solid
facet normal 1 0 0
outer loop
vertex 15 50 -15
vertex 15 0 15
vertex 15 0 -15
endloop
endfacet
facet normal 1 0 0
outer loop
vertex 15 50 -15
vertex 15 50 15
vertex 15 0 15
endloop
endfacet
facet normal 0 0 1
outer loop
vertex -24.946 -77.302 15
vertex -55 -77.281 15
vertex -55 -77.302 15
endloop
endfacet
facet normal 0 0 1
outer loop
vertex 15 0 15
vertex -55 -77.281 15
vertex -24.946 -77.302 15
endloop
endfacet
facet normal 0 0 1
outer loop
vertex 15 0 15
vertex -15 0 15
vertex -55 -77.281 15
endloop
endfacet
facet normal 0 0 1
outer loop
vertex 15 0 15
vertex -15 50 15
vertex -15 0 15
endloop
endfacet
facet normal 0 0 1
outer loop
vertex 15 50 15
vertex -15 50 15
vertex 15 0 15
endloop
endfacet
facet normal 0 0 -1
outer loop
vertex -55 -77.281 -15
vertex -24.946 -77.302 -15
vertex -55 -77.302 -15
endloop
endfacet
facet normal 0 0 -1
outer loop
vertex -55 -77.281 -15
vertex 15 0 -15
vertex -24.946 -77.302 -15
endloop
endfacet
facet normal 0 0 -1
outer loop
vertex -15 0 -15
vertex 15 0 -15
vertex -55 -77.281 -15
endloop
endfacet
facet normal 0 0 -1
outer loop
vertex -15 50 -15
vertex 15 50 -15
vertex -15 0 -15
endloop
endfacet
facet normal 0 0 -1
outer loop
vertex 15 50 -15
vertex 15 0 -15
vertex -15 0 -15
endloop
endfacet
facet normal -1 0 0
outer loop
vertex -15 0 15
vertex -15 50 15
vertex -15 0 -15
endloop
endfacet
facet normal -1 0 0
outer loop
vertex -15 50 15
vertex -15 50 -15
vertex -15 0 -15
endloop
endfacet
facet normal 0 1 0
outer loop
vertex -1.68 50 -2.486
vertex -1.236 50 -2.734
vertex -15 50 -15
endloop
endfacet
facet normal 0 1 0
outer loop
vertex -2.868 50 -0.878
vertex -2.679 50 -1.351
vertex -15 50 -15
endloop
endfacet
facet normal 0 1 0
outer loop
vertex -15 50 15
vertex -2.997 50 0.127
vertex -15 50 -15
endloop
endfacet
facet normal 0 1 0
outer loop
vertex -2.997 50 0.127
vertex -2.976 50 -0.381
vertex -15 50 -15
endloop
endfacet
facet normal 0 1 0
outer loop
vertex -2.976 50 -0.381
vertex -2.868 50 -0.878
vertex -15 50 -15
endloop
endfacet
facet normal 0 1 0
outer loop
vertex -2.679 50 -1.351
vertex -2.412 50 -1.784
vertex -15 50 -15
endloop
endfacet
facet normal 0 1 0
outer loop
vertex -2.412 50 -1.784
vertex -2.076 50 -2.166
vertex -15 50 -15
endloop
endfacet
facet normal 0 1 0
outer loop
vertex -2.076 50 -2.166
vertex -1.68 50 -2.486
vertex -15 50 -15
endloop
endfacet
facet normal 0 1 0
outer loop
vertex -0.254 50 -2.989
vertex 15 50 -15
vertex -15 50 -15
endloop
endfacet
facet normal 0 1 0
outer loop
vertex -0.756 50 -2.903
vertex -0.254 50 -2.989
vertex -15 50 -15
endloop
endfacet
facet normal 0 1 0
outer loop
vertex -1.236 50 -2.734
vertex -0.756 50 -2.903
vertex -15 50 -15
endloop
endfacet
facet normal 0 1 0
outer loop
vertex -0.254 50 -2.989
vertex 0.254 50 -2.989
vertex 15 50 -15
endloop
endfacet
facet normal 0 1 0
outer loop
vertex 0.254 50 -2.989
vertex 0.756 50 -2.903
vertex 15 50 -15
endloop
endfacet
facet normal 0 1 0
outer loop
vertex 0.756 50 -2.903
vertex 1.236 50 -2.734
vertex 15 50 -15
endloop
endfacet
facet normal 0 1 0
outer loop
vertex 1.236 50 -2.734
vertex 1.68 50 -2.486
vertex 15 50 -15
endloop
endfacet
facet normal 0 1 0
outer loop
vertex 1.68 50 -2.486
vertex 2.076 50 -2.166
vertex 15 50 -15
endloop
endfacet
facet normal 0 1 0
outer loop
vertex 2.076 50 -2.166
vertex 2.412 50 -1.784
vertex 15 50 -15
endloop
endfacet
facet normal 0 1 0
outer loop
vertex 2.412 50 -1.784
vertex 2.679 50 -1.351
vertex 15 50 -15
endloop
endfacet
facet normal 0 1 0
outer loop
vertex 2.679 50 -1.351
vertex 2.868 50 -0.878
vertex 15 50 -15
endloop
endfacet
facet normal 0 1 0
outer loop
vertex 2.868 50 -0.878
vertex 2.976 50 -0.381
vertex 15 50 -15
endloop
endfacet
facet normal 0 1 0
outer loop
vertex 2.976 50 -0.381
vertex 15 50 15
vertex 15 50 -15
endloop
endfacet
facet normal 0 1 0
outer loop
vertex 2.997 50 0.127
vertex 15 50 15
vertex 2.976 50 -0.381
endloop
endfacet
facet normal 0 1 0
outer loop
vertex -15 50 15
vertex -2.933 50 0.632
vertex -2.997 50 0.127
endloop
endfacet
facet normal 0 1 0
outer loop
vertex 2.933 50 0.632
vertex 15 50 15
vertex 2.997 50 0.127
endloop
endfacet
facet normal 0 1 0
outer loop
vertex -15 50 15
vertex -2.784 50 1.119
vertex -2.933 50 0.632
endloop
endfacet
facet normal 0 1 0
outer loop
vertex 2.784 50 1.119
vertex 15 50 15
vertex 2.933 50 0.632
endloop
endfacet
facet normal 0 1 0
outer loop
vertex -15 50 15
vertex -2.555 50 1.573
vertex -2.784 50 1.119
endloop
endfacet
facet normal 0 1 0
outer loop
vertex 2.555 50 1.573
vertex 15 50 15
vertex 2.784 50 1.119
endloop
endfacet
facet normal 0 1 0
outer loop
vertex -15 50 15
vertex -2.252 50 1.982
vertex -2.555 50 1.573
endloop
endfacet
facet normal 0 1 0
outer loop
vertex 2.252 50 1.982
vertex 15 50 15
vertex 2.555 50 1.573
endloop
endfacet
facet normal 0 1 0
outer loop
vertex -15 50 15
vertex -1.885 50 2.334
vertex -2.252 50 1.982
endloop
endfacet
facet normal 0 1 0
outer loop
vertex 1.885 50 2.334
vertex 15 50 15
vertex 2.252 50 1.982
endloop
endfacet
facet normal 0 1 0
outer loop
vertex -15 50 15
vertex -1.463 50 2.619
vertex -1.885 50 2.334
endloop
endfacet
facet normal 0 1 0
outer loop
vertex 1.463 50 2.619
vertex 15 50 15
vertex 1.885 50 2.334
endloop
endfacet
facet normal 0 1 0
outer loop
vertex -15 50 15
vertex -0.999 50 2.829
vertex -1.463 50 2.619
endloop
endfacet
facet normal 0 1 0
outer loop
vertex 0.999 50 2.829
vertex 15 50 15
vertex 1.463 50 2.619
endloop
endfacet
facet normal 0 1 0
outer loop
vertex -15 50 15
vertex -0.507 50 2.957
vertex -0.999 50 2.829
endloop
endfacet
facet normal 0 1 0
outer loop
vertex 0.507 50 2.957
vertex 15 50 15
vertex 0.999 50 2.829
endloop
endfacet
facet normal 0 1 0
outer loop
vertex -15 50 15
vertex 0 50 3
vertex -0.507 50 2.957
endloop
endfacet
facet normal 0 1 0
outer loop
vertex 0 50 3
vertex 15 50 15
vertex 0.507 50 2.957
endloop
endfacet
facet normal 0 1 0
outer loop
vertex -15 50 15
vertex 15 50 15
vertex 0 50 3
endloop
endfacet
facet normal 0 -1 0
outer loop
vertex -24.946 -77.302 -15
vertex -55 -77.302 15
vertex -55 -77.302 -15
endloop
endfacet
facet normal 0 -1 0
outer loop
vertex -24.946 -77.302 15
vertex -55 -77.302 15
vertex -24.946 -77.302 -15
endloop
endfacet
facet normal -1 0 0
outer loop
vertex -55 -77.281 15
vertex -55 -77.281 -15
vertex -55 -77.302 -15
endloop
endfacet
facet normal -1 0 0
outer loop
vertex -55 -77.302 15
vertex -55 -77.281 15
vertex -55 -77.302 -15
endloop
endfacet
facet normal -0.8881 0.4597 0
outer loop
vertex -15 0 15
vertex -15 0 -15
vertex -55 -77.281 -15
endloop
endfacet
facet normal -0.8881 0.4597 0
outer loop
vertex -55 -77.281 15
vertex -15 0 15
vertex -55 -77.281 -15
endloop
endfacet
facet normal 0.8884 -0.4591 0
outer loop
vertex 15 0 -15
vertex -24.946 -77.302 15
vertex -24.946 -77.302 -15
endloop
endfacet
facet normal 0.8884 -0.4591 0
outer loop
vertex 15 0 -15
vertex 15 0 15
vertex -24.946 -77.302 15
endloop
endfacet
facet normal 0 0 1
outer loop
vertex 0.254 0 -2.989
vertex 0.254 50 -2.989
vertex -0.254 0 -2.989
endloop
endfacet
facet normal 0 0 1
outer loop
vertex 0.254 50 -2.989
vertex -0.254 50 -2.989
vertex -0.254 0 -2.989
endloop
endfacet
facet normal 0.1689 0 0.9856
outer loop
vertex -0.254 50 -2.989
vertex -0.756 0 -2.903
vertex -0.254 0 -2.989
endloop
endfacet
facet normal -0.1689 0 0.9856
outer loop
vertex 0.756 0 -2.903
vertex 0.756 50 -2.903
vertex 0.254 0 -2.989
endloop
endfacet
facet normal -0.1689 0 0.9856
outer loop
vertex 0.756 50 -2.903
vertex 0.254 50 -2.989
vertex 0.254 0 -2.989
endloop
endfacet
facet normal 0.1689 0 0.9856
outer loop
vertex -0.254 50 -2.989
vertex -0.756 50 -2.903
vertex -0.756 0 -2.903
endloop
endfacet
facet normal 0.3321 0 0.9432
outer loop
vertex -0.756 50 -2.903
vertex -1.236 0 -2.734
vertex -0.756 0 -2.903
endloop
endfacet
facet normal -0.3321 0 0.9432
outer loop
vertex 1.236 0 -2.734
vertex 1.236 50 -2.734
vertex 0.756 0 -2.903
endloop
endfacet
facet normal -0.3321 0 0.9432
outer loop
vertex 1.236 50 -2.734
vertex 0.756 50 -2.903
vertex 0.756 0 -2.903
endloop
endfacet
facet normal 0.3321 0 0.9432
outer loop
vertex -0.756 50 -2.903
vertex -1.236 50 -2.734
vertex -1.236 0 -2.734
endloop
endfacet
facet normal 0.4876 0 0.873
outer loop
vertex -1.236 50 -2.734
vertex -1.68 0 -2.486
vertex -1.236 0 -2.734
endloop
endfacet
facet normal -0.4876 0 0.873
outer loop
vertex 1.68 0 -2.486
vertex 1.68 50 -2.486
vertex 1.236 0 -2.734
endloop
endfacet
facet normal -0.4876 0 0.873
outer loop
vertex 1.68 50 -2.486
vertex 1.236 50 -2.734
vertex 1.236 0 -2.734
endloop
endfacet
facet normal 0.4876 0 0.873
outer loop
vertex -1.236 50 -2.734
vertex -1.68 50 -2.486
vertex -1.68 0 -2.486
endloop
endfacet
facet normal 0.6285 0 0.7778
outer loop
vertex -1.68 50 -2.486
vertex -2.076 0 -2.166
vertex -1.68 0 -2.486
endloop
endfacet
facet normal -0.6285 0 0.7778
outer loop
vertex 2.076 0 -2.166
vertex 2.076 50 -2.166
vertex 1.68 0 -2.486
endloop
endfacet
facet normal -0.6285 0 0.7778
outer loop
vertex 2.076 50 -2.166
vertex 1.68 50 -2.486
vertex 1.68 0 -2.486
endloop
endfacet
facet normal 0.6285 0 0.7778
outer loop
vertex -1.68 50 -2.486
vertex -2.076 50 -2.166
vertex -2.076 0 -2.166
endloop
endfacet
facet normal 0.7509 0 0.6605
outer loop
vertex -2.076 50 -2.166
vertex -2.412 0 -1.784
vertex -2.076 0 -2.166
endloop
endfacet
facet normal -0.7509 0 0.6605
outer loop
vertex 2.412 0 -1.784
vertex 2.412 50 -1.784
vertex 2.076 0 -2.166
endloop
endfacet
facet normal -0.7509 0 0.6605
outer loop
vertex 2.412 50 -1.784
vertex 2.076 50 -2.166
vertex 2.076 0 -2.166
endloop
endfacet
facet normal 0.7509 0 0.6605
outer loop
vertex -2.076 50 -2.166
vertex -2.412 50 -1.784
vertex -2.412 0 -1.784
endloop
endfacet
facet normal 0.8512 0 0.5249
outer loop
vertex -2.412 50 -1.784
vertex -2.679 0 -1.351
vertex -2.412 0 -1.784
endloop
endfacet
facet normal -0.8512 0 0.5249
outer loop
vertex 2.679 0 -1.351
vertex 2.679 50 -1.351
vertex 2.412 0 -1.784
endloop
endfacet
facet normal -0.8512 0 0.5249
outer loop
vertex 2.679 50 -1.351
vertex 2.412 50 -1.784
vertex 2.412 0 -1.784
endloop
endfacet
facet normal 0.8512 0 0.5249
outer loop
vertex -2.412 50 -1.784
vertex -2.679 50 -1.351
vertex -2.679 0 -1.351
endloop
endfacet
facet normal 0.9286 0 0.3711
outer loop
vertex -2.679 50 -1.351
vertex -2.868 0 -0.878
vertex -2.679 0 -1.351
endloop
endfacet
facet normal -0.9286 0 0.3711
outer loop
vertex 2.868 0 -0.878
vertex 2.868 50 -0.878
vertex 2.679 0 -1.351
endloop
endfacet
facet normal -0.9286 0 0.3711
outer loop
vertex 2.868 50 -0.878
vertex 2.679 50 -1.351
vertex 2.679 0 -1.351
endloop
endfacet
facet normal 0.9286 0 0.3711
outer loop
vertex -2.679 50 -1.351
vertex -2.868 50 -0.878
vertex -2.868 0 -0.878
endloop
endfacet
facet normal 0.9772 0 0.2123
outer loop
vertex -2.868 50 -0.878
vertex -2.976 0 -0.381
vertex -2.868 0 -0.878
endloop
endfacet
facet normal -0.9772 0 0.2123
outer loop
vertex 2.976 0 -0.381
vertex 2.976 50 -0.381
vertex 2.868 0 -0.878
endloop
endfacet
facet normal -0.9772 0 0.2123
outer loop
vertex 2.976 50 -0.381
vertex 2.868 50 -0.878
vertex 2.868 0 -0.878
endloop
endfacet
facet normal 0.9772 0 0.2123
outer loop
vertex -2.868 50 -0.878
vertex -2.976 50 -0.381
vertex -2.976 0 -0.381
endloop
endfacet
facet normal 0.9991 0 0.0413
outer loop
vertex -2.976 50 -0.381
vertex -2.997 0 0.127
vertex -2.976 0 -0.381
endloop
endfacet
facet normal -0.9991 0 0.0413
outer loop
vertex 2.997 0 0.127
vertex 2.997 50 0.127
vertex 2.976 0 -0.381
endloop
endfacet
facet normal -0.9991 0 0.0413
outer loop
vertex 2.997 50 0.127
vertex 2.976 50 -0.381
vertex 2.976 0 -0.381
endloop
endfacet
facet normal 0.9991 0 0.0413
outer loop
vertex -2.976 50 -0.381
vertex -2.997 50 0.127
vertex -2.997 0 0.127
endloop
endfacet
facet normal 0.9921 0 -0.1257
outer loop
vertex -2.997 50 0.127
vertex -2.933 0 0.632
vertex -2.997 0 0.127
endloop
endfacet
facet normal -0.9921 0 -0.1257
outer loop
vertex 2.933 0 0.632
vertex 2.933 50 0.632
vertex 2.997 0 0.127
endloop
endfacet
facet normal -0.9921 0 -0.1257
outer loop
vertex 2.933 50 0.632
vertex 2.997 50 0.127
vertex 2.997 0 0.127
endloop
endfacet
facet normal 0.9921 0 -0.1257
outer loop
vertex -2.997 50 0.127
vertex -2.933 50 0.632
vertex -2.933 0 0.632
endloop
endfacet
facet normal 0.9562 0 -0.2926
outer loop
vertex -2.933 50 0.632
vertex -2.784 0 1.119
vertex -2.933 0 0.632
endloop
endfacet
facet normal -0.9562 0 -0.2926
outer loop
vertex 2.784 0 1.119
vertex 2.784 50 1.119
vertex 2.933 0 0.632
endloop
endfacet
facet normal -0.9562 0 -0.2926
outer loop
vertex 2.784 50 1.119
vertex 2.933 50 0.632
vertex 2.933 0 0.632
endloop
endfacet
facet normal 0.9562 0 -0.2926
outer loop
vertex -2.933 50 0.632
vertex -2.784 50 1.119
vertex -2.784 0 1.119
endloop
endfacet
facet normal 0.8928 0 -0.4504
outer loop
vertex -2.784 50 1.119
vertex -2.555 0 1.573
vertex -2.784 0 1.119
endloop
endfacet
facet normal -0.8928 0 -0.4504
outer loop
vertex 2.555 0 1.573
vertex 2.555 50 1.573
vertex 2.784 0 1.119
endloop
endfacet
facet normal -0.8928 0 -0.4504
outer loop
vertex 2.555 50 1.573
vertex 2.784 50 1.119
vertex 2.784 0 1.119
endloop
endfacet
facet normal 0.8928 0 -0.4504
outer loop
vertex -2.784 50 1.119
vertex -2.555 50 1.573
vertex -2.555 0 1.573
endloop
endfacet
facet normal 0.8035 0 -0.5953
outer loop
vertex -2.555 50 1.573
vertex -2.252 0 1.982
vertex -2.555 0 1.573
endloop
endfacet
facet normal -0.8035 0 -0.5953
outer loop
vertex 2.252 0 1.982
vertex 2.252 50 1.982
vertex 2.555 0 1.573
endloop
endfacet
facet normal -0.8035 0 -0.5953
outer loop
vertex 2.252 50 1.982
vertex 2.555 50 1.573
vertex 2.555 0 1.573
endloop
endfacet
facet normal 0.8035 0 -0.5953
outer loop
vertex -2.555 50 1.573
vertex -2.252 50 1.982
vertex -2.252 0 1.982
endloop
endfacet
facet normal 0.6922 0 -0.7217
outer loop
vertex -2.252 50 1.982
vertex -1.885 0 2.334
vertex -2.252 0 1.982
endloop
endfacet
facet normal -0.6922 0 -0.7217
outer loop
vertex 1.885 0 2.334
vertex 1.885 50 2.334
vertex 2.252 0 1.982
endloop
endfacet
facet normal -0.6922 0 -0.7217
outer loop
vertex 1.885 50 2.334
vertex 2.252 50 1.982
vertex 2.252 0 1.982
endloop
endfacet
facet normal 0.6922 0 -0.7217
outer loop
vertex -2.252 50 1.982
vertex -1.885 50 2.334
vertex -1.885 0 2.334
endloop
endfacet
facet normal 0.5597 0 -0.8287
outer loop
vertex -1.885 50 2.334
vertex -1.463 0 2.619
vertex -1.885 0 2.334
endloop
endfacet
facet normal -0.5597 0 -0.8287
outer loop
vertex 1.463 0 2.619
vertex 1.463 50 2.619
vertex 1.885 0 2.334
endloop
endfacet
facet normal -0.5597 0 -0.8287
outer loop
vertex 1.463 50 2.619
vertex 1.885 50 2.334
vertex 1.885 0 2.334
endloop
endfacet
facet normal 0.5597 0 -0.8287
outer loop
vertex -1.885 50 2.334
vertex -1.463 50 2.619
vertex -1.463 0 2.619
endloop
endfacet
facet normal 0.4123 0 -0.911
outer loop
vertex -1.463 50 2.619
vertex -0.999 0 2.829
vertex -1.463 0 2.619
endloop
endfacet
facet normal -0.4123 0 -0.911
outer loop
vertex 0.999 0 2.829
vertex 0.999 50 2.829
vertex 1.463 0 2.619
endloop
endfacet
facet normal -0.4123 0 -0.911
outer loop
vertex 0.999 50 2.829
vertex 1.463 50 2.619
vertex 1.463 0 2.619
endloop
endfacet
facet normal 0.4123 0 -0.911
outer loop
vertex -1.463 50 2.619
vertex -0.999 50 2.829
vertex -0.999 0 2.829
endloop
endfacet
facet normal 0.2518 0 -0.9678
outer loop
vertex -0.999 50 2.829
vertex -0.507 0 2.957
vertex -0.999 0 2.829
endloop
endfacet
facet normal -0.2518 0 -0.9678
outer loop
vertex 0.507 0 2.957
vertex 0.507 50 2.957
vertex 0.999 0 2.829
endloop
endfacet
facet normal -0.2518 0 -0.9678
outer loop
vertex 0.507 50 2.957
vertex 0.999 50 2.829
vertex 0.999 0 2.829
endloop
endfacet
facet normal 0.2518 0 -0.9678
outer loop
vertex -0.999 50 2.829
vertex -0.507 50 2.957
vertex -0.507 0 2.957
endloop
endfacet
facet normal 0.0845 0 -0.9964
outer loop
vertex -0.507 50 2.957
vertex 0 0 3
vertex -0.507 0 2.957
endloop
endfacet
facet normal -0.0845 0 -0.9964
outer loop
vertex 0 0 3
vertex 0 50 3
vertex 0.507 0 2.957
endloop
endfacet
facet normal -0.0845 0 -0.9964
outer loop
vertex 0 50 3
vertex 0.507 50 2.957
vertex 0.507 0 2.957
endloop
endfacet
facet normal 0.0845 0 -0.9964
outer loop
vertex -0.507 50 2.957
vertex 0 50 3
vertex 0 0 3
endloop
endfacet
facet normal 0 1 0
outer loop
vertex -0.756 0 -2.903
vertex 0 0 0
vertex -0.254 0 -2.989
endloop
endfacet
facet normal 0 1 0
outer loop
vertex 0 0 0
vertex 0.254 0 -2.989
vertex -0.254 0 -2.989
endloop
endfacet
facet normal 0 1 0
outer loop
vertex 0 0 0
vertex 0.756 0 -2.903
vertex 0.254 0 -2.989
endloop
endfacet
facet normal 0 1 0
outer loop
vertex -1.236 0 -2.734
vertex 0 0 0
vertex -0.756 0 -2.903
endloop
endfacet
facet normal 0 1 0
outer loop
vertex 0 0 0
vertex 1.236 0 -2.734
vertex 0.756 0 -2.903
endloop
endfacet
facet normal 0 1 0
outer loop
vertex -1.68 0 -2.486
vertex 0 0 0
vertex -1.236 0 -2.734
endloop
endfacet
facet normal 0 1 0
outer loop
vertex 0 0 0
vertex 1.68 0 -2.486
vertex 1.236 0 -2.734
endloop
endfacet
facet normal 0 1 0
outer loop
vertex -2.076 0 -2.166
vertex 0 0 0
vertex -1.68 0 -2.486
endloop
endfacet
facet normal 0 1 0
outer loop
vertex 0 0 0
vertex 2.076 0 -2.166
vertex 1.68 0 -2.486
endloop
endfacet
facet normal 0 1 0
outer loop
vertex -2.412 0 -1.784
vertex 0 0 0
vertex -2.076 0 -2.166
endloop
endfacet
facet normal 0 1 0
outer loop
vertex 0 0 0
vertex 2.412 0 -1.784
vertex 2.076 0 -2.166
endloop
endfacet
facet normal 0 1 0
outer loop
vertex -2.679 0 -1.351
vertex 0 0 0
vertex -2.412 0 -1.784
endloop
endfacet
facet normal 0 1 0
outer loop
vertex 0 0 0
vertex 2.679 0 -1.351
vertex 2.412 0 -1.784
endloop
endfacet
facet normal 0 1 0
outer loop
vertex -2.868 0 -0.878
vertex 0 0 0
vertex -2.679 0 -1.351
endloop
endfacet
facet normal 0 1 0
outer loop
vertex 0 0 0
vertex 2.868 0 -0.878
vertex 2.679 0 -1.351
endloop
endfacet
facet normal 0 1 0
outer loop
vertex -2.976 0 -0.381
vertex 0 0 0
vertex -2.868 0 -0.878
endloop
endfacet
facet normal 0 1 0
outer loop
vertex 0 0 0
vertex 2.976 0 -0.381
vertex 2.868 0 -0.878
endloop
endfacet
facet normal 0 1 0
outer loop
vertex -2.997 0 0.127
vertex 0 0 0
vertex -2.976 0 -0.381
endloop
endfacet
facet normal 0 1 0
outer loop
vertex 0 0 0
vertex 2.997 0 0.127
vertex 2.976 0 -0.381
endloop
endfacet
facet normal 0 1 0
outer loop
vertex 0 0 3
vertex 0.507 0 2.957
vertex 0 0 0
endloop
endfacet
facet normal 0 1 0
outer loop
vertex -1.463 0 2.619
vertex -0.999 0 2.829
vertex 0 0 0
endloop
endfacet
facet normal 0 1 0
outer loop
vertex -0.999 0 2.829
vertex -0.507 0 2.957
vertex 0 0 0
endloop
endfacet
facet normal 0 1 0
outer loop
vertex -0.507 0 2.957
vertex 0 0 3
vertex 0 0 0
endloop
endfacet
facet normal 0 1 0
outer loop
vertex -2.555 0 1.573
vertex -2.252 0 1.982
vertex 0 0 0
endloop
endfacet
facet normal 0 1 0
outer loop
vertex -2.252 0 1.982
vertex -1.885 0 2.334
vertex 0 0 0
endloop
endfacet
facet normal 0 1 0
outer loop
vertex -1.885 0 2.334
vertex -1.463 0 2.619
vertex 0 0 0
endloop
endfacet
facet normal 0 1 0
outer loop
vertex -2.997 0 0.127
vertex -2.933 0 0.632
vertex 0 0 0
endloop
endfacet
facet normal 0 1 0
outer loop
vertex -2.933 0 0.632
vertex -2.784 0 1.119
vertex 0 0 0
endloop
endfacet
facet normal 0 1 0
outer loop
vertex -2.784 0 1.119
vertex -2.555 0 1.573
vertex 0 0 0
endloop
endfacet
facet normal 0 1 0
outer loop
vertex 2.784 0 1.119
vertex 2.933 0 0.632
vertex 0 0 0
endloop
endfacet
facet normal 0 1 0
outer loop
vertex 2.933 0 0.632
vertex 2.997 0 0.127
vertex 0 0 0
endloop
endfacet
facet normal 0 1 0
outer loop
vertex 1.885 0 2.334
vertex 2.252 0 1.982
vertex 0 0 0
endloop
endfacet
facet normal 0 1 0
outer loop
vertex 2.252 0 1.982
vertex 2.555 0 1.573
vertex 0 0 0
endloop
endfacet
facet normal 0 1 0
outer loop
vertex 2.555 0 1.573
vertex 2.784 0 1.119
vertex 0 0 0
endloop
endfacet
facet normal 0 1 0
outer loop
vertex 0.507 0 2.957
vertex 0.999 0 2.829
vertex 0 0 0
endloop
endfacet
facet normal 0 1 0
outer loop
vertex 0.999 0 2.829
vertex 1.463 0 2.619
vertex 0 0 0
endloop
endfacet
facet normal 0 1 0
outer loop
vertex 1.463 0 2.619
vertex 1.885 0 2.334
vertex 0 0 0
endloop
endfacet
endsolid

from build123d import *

# Parameters (mm, degrees)
SKETCH_1_W          = 30
SKETCH_1_H          = 30
EXTRUDE_1_DEPTH     = 50
SKETCH_3_W          = 30
SKETCH_3_H          = 87.301509621
EXTRUDE_2_DEPTH     = 40
SKETCH_4_W          = 30
SKETCH_4_H          = 77.301509621
EXTRUDE_3_DEPTH     = 30
SKETCH_7_W          = 40
SKETCH_7_H          = 10
CUT_EXTRUDE_1_DEPTH = 30
CUT_EXTRUDE_2_DEPTH = 30
CUT_EXTRUDE_5_DEPTH = 30
SKETCH_21_R         = 3
CUT_EXTRUDE_6_DEPTH = 50


with BuildPart() as part:
    # 草图1 → 凸台-拉伸1 (new body)
    with BuildSketch(Plane(origin=(0, 0, 0), x_dir=(1, 0, 0), z_dir=(0, 1, 0))):
        Rectangle(SKETCH_1_W, SKETCH_1_H)
    extrude(amount=EXTRUDE_1_DEPTH)

    # 草图3 → 凸台-拉伸2 (add)
    with BuildSketch(Plane.ZY.offset(15)):
        with Locations((0, -33.650754811)):
            Rectangle(SKETCH_3_W, SKETCH_3_H)
    extrude(amount=EXTRUDE_2_DEPTH)

    # 草图4 → 凸台-拉伸3 (add)
    with BuildSketch(Plane(origin=(-15, 0, 0), x_dir=(0, 0, -1), z_dir=(1, 0, 0))):
        with Locations((0, -38.650754811)):
            Rectangle(SKETCH_4_W, SKETCH_4_H)
    extrude(amount=EXTRUDE_3_DEPTH)

    # 草图7 → 切除-拉伸1 (cut)
    with BuildSketch(Plane.XY.offset(15)):
        with Locations((-35, 5)):
            Rectangle(SKETCH_7_W, SKETCH_7_H)
    extrude(amount=-CUT_EXTRUDE_1_DEPTH, mode=Mode.SUBTRACT)

    # 草图8 → 切除-拉伸2 (cut)
    with BuildSketch(Plane.XY.offset(15)):
        Polygon((-15, 0), (-55, 0), (-95.241358959, -77.747534748), (-55.241358959, -77.747534748), align=None)
    extrude(amount=-CUT_EXTRUDE_2_DEPTH, mode=Mode.SUBTRACT)

    # 草图9 → 切除-拉伸5 (cut)
    with BuildSketch(Plane.XY.offset(15)):
        Polygon((15, 0), (-26.125228954, -79.582689845), (25.626144769, -79.582689845), (66.751373723, 0), align=None)
    extrude(amount=-CUT_EXTRUDE_5_DEPTH, mode=Mode.SUBTRACT)

    # 草图21 → 切除-拉伸6 (cut)
    with BuildSketch(Plane(origin=(0, 50, 0), x_dir=(1, 0, 0), z_dir=(0, 1, 0))):
        with Locations(Location((0, 0, 0), (0, 0, 270))):
            Circle(SKETCH_21_R)
    extrude(amount=-CUT_EXTRUDE_6_DEPTH, mode=Mode.SUBTRACT)


solid = part.part
